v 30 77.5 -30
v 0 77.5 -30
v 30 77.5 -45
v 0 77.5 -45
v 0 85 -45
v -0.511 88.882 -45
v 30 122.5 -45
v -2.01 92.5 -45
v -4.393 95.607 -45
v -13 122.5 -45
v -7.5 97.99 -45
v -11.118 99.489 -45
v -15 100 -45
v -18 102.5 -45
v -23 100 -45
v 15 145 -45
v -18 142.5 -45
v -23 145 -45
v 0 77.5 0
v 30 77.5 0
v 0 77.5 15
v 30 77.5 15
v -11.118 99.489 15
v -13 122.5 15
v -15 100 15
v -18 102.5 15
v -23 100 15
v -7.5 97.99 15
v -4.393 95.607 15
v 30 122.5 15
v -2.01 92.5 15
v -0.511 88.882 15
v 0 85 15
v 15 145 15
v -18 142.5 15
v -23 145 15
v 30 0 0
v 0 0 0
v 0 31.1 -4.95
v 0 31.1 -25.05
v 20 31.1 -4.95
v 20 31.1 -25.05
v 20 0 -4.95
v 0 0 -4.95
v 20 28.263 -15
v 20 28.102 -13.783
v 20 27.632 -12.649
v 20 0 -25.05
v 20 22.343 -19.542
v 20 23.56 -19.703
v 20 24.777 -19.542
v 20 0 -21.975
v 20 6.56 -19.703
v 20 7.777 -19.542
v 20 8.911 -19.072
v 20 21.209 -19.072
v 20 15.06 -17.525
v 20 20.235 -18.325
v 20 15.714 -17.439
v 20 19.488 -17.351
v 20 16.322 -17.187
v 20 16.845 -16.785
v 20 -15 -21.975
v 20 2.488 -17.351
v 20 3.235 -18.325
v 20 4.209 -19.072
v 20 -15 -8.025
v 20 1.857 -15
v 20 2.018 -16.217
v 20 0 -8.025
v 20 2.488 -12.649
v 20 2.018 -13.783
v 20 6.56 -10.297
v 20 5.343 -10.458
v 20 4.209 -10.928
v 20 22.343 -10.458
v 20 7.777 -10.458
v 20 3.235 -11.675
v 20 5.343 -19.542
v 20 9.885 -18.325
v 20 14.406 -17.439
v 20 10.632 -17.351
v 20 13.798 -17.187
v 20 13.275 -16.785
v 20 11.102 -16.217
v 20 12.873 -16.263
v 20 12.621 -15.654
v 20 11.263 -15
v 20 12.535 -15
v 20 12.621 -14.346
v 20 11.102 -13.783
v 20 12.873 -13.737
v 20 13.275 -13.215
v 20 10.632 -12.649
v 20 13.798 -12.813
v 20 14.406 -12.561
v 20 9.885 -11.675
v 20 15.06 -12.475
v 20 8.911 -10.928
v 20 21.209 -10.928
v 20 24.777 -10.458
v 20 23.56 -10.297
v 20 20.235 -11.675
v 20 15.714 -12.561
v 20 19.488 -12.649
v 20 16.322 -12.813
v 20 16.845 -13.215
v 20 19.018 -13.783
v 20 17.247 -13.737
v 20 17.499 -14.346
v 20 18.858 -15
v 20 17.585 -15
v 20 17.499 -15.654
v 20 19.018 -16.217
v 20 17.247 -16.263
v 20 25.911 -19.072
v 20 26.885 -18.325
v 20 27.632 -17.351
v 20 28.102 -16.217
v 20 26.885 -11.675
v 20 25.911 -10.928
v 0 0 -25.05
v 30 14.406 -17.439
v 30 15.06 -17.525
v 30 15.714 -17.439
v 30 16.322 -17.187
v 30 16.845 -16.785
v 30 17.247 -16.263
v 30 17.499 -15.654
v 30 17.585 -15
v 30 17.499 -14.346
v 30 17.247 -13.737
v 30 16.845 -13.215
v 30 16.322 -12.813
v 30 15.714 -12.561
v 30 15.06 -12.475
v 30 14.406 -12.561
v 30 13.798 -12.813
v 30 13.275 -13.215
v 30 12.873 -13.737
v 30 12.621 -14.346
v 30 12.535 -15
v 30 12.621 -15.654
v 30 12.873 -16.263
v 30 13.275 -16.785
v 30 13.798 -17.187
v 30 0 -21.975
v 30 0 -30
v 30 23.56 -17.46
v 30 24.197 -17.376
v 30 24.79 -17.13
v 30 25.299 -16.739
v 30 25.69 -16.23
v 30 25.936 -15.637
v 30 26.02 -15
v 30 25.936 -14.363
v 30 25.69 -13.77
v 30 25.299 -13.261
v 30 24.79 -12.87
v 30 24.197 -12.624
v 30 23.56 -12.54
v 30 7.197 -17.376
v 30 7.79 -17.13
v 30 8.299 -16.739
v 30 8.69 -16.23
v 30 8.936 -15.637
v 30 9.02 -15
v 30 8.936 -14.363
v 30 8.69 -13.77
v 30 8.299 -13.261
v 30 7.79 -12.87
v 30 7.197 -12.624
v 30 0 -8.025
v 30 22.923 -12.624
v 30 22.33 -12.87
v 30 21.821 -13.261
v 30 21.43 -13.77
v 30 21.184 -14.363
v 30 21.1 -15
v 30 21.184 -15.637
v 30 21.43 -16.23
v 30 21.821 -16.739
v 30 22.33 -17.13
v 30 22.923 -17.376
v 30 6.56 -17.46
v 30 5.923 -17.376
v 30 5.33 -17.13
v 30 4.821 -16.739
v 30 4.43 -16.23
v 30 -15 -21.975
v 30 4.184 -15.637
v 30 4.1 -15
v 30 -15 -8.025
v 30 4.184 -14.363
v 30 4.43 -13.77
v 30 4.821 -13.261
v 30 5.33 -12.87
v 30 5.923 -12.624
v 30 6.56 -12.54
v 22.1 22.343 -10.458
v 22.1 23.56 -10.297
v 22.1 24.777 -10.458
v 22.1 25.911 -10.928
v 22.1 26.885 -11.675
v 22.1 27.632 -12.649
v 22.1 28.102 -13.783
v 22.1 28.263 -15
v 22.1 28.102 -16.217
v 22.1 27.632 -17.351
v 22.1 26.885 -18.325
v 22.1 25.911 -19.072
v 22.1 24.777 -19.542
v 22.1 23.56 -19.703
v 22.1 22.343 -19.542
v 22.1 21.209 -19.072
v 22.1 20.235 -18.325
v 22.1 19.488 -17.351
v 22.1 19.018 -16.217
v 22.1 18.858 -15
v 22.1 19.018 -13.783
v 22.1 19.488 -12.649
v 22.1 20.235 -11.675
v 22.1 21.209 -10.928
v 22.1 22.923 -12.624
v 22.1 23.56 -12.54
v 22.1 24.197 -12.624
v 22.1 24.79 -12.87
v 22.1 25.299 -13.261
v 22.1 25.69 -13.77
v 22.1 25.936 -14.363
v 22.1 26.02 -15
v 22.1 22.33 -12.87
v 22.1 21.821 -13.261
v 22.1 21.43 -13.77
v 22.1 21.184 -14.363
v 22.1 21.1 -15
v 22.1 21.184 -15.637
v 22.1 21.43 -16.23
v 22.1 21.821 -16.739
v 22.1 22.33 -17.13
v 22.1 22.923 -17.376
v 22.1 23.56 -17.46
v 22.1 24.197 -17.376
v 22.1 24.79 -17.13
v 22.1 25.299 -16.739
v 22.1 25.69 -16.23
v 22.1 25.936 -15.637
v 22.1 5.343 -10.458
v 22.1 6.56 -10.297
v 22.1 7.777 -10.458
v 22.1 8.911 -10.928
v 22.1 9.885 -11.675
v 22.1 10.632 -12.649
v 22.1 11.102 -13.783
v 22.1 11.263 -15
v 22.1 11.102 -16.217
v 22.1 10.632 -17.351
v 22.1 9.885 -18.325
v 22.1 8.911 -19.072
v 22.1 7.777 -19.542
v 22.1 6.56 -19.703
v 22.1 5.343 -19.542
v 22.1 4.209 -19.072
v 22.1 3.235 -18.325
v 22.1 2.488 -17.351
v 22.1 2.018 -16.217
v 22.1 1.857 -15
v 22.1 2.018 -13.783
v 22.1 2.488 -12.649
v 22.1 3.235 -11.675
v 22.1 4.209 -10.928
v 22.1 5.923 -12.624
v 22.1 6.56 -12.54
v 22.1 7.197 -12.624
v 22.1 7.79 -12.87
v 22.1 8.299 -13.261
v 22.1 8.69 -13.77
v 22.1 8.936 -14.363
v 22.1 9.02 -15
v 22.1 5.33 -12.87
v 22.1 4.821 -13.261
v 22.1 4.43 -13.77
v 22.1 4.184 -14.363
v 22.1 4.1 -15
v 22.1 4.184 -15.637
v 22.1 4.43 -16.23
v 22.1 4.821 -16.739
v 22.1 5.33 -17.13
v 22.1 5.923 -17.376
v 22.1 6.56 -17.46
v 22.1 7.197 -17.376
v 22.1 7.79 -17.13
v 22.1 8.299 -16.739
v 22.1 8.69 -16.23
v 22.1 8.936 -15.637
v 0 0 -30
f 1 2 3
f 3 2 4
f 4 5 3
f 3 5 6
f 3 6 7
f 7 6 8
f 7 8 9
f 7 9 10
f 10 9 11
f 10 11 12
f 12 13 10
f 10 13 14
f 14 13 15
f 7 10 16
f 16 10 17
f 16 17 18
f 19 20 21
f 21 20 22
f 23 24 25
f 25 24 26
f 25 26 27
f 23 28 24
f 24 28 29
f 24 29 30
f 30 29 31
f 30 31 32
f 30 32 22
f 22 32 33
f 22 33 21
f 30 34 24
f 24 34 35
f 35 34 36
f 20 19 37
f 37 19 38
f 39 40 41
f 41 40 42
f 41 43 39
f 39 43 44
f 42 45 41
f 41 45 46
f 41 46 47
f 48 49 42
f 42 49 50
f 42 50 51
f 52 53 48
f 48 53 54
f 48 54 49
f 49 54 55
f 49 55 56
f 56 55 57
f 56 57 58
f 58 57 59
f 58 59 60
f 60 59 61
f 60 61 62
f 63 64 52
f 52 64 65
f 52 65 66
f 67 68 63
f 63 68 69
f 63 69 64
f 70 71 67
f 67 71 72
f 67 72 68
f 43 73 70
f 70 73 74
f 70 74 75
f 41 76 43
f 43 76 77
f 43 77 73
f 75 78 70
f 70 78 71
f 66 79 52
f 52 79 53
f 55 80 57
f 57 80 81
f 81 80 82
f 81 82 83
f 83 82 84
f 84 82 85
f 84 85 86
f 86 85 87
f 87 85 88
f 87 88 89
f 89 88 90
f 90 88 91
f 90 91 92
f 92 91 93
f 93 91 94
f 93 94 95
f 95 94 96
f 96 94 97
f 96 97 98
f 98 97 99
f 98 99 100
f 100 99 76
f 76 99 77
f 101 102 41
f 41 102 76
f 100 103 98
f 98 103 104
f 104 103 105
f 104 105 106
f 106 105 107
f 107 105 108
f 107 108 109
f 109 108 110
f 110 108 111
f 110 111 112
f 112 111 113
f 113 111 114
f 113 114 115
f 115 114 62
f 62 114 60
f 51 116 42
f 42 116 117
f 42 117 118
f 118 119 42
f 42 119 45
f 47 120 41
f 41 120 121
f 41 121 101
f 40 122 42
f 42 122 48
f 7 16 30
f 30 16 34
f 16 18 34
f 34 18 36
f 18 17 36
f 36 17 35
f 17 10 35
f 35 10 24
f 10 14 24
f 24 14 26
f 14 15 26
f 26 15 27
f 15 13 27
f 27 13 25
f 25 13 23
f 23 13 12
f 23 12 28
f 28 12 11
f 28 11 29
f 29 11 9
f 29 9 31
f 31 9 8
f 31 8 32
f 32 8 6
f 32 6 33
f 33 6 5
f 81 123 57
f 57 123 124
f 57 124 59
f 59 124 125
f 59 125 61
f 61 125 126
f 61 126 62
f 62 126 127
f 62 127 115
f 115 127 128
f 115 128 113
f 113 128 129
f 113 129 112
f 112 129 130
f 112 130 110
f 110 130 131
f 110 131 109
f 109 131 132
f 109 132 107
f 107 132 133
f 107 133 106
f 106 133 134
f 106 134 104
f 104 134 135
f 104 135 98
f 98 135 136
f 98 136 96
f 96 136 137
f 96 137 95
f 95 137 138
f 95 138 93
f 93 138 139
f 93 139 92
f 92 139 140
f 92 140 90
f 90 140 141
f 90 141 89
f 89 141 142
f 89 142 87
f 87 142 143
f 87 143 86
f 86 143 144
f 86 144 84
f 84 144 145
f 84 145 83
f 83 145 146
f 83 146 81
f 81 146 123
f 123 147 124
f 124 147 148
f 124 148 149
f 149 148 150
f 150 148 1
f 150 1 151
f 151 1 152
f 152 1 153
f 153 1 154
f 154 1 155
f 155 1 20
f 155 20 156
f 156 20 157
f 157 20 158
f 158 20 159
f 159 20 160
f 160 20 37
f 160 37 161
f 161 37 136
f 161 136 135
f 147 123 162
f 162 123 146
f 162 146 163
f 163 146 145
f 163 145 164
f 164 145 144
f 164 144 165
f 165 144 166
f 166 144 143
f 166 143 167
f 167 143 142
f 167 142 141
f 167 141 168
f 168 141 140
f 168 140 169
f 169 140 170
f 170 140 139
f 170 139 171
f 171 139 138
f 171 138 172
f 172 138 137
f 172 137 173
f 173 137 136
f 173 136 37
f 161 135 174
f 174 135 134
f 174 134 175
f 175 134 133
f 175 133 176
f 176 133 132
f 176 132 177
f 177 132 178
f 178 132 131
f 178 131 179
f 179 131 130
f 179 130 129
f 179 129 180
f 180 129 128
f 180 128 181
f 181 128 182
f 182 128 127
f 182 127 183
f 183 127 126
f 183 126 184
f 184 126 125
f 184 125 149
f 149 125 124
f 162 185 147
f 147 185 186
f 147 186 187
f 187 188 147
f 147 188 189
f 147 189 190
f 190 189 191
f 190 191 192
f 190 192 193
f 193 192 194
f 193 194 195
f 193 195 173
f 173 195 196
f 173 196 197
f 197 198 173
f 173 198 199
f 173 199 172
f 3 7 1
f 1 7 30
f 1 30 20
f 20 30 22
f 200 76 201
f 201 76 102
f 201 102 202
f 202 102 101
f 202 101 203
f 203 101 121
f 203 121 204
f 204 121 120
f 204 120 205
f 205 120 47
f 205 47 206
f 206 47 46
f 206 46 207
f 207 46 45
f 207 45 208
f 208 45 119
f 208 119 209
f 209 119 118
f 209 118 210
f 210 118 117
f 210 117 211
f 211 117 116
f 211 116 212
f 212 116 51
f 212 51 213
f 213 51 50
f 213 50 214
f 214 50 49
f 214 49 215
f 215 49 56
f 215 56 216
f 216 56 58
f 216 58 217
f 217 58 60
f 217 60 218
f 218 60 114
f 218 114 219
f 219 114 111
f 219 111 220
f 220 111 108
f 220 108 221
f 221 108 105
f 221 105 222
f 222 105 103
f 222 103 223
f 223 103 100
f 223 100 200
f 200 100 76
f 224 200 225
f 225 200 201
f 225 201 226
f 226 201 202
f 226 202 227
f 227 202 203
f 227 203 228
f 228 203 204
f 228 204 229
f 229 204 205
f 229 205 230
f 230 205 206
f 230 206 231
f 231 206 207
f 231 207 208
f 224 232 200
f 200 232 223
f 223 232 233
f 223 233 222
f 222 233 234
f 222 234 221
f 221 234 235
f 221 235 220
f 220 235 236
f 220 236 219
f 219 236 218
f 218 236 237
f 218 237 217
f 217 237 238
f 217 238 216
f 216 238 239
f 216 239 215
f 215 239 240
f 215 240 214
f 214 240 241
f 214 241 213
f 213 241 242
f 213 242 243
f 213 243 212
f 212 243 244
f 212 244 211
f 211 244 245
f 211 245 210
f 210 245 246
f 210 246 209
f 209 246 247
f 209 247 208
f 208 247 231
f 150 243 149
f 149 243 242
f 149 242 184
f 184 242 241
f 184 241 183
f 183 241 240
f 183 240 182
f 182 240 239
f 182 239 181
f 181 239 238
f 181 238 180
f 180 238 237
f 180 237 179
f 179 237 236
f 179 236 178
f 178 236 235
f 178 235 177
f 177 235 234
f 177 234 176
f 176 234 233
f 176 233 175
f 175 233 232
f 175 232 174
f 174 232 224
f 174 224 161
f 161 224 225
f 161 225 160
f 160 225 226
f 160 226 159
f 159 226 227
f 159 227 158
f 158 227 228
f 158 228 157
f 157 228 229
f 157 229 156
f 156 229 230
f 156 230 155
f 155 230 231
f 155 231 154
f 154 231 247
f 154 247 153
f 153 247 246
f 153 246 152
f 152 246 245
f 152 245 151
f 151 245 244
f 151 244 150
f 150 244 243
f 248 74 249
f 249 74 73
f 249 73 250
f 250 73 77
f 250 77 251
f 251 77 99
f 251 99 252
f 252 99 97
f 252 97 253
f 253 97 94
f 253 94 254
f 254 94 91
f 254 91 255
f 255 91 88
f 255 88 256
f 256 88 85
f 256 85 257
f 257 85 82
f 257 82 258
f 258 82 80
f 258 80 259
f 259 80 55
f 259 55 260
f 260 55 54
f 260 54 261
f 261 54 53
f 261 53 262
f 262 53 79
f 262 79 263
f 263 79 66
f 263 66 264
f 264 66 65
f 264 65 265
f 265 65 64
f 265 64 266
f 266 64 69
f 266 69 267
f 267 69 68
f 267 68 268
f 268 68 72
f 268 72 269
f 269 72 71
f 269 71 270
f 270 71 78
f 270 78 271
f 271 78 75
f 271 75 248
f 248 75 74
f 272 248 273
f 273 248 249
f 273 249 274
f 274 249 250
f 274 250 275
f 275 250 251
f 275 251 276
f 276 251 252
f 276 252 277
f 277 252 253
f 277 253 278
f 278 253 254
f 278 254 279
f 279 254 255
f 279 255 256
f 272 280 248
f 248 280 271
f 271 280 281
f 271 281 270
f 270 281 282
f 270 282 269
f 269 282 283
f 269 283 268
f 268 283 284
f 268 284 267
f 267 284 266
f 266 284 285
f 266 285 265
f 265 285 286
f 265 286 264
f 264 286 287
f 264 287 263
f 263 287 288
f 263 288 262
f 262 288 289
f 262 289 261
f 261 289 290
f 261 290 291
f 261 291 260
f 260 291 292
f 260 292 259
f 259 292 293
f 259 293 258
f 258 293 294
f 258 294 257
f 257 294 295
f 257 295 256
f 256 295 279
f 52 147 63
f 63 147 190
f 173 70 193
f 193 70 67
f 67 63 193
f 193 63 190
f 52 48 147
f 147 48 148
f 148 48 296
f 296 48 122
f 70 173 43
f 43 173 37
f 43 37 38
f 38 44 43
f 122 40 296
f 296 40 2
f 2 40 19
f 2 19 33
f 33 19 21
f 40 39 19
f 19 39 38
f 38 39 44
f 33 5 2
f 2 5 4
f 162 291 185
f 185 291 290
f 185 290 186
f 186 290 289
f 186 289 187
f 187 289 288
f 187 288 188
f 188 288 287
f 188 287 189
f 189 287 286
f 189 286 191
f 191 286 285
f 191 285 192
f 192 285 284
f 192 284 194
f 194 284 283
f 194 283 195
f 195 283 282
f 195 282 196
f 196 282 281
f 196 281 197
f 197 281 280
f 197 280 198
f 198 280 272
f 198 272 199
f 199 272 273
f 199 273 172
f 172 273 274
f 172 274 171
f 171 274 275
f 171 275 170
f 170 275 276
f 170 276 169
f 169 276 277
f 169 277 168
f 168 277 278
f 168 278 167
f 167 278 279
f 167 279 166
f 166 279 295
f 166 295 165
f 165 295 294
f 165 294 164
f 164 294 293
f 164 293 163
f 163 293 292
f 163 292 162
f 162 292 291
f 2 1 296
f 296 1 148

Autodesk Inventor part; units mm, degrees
ref_plane "YZ Plane" through (0, 0, 0) normal (1, 0, 0) x (0, 1, 0)
ref_plane "XZ Plane" through (0, 0, 0) normal (0, 1, 0) x (-1, 0, 0)
sketch "Sketch1" plane through (0, 0, 0) normal (0, 0, 1) x (1, 0, 0)
  line L0 (0, 0) -> (25, 0)
  line L1 (25, 0) -> (25, 40)
  line L2 (25, 40) -> (0, 40)
  line L3 (0, 40) -> (0, 0)
  dimension "d1" = 25
  dimension "d2" = 40
  dimension "d3" = 25
extrude "Extrusion1" add sketch "Sketch1" against normal blind 30
sketch "Sketch2" plane through (25, 0, 0) normal (1, 0, 0) x (0, 0, -1)
  line L0 (0, 0) -> (30, 0) projected
  circle A0 centre (15, 6.56) radius 2.46
extrude "Extrusion2" cut sketch "Sketch2" against normal blind 30
sketch "Sketch3" plane through (0, 0, 0) normal (-1, 0, 0) x (0, 0, 1)
  line L0 (0, 0) -> (-30, 0) projected
  line L1 (-25.05, 0) -> (-4.95, 0)
  line L2 (-4.95, 0) -> (-4.95, 33.12)
  line L3 (-4.95, 33.12) -> (-25.05, 33.12)
  line L4 (-25.05, 33.12) -> (-25.05, 0)
  dimension "d11" = 20.1
extrude "Extrusion3" cut sketch "Sketch3" against normal blind 20
sketch "Sketch4" plane through (0, 0, 0) normal (0, -1, 0) x (1, 0, 0)
  line L0 (20, -4.95) -> (20, -25.05) projected
  line L1 (20, -15) -> (25, -15)
  line L2 (25, 0) -> (25, -30) projected
  line L3 (20, -8.025) -> (25, -8.025)
  line L4 (25, -8.025) -> (25, -21.975)
  line L5 (25, -21.975) -> (20, -21.975)
  line L6 (20, -21.975) -> (20, -8.025)
  line L7 (20, -8.025) -> (25, -21.975) construction
  line L8 (25, -8.025) -> (20, -21.975) construction
  line L9 (25, -12.54) -> (25, -17.46) projected
  point P0 (0, 0)
  point P1 (22.5, -15)
  dimension "d14" = 13.95
extrude "Extrusion4" add sketch "Sketch4" along normal blind 15
sketch "Sketch5" plane through (20, 0, 0) normal (-1, 0, 0) x (0, 0, 1)
  circle A0 centre (-15, 6.56) radius 2.46 projected
  circle A1 centre (-15, 6.56) radius 4.7025
  circle A2 centre (-15, 6.56) radius 2.46 projected
  circle A3 centre (-15, 6.56) radius 2.46
  point P0 (0, 0)
  dimension "d17" = 9.405
extrude "Extrusion5" cut sketch "Sketch5" against normal blind 2.1
sketch "Sketch6" plane through (25, 0, 0) normal (1, 0, 0) x (0, 0, -1)
  circle A0 centre (15, 6.56) radius 4.7025 projected
  line L0 (15, 6.56) -> (15, 23.56)
  circle A1 centre (15, 23.56) radius 2.46
  point P0 (0, 0)
  dimension "d20" = 17
  dimension "d21" = 4.92
extrude "Extrusion6" cut sketch "Sketch6" against normal blind 10 contours A1
sketch "Sketch7" plane through (20, 0, 0) normal (-1, 0, 0) x (0, 0, 1)
  circle A0 centre (-15, 23.56) radius 2.46 projected
  circle A1 centre (-15, 23.56) radius 4.7025
  point P0 (0, 0)
  dimension "d24" = 9.405
extrude "Extrusion7" cut sketch "Sketch7" against normal blind 2.1
sketch "Sketch9" plane through (25, 0, 0) normal (1, 0, 0) x (0, 0, -1)
  circle A0 centre (15, 6.56) radius 2.46 projected
  circle A1 centre (15, 6.56) radius 2.46
  circle A2 centre (15, 23.56) radius 2.46 projected
  circle A3 centre (15, 23.56) radius 2.46
  line L0 (30, 40) -> (30, 0) projected
  line L1 (30, 0) -> (30, 40)
  line L2 (30, 40) -> (0, 40)
  line L3 (0, 40) -> (0, 0)
  line L4 (0, 0) -> (8.025, 0) projected
  line L5 (21.975, 0) -> (21.975, -15)
  line L6 (21.975, -15) -> (8.025, -15)
  line L7 (8.025, -15) -> (8.025, 0)
  line L8 (0, 0) -> (8.025, 0)
  line L9 (21.975, 0) -> (30, 0)
extrude "Extrusion8" add sketch "Sketch9" along normal blind 5
sketch "Sketch10" plane through (0, 40, 0) normal (0, 1, 0) x (1, 0, 0)
  line L0 (0, 30) -> (30, 30) projected
  line L1 (30, 0) -> (0, 0) projected
  line L2 (0, 30) -> (30, 30)
  line L3 (30, 30) -> (30, 0)
  line L4 (30, 0) -> (0, 0)
  line L5 (0, 0) -> (0, 30)
extrude "Extrusion9" add sketch "Sketch10" along normal blind 30
sketch "Sketch12" plane through (30, 0, 0) normal (1, 0, 0) x (0, 0, -1)
  circle A0 centre (15, 6.56) radius 2.46 projected
  line L0 (15, 6.56) -> (15, 15.06)
  circle A1 centre (15, 15.06) radius 2.525
  point P0 (0, 0)
  dimension "d31" = 8.5
  dimension "d33" = 5.05
extrude "Extrusion10" cut sketch "Sketch12" against normal blind 30 contours A1
sketch "Sketch14" plane through (0, 0, 0) normal (0, 0, 1) x (1, 0, 0)
  line L0 (30, 70) -> (0, 70) projected
  line L1 (0, 70) -> (0, 85)
  line L2 (-15, 100) -> (-23, 100)
  line L3 (30, 0) -> (30, 70) projected
  line L4 (30, 122.5) -> (30, 70)
  arc A0 (0, 85) -> (-15, 100) centre (-15, 85) ccw
  line L5 (30, 105) -> (30, 100)
  line L6 (-23, 145) -> (15, 145)
  line L7 (-18, 142.5) -> (-23, 145)
  line L8 (-18, 102.5) -> (-23, 100)
  line L9 (-18, 102.5) -> (-13, 122.5)
  line L10 (-13, 122.5) -> (-18, 142.5)
  line L11 (30, 122.5) -> (15, 145)
  point P0 (0, 0)
  point P1 (0, 100)
  dimension "d47" = 30
  dimension "d54" = 15
extrude "Extrusion12" add sketch "Sketch14" against normal blind 30
sketch "Sketch15" plane through (0, 0, -25.05) normal (-1, 0, 0) x (0, 0, 1)
  line L0 (0, 33.12) -> (20.1, 33.12) projected
  line L1 (20.1, 33.12) -> (20.1, 0) projected
  line L2 (0, 33.12) -> (20.1, 33.12)
  line L3 (20.1, 33.12) -> (20.1, 31.1)
  line L4 (20.1, 31.1) -> (0, 31.1)
  line L5 (0, 31.1) -> (0, 33.12)
  point P0 (25.05, 0)
  dimension "d57" = 2.02
extrude "Extrusion13" add sketch "Sketch15" against normal blind 20
sketch "Sketch24" plane through (0, 0, 0) normal (0, 0, 1) x (1, 0, 0)
  line L0 (-15, 100) -> (-23, 100) projected
  line L1 (-15, 100) -> (-23, 100)
  line L2 (-23, 100) -> (-18, 102.5) projected
  line L3 (-23, 100) -> (-18, 102.5)
  line L4 (-18, 102.5) -> (-13, 122.5) projected
  line L5 (-18, 102.5) -> (-13, 122.5)
  line L6 (-13, 122.5) -> (-18, 142.5) projected
  line L7 (-13, 122.5) -> (-18, 142.5)
  line L8 (-18, 142.5) -> (-23, 145) projected
  line L9 (-18, 142.5) -> (-23, 145)
  line L10 (-23, 145) -> (15, 145) projected
  line L11 (-23, 145) -> (15, 145)
  line L12 (15, 145) -> (30, 122.5) projected
  line L13 (15, 145) -> (30, 122.5)
  line L14 (30, 122.5) -> (30, 77.5)
  line L15 (30, 0) -> (30, 122.5) projected
  line L16 (30, 77.5) -> (0, 77.5)
  line L17 (0, 0) -> (0, 85) projected
  line L18 (0, 77.5) -> (0, 85)
  arc A0 (0, 85) -> (-15, 100) centre (-15, 85) ccw projected
  arc A1 (0, 85) -> (-15, 100) centre (-15, 85) ccw
  dimension "d86" = 45
extrude "Extrusion14" add sketch "Sketch24" along normal blind 15
ref_plane "Work Plane1" through (0, 0, -15) normal (0, 0, 1) x (1, 0, 0)
mirror "Mirror1" about plane through (0, 0, -15) normal (0, 0, 1) of "Extrusion14"
properties part number "rec_a_40mm_x_60mm"
